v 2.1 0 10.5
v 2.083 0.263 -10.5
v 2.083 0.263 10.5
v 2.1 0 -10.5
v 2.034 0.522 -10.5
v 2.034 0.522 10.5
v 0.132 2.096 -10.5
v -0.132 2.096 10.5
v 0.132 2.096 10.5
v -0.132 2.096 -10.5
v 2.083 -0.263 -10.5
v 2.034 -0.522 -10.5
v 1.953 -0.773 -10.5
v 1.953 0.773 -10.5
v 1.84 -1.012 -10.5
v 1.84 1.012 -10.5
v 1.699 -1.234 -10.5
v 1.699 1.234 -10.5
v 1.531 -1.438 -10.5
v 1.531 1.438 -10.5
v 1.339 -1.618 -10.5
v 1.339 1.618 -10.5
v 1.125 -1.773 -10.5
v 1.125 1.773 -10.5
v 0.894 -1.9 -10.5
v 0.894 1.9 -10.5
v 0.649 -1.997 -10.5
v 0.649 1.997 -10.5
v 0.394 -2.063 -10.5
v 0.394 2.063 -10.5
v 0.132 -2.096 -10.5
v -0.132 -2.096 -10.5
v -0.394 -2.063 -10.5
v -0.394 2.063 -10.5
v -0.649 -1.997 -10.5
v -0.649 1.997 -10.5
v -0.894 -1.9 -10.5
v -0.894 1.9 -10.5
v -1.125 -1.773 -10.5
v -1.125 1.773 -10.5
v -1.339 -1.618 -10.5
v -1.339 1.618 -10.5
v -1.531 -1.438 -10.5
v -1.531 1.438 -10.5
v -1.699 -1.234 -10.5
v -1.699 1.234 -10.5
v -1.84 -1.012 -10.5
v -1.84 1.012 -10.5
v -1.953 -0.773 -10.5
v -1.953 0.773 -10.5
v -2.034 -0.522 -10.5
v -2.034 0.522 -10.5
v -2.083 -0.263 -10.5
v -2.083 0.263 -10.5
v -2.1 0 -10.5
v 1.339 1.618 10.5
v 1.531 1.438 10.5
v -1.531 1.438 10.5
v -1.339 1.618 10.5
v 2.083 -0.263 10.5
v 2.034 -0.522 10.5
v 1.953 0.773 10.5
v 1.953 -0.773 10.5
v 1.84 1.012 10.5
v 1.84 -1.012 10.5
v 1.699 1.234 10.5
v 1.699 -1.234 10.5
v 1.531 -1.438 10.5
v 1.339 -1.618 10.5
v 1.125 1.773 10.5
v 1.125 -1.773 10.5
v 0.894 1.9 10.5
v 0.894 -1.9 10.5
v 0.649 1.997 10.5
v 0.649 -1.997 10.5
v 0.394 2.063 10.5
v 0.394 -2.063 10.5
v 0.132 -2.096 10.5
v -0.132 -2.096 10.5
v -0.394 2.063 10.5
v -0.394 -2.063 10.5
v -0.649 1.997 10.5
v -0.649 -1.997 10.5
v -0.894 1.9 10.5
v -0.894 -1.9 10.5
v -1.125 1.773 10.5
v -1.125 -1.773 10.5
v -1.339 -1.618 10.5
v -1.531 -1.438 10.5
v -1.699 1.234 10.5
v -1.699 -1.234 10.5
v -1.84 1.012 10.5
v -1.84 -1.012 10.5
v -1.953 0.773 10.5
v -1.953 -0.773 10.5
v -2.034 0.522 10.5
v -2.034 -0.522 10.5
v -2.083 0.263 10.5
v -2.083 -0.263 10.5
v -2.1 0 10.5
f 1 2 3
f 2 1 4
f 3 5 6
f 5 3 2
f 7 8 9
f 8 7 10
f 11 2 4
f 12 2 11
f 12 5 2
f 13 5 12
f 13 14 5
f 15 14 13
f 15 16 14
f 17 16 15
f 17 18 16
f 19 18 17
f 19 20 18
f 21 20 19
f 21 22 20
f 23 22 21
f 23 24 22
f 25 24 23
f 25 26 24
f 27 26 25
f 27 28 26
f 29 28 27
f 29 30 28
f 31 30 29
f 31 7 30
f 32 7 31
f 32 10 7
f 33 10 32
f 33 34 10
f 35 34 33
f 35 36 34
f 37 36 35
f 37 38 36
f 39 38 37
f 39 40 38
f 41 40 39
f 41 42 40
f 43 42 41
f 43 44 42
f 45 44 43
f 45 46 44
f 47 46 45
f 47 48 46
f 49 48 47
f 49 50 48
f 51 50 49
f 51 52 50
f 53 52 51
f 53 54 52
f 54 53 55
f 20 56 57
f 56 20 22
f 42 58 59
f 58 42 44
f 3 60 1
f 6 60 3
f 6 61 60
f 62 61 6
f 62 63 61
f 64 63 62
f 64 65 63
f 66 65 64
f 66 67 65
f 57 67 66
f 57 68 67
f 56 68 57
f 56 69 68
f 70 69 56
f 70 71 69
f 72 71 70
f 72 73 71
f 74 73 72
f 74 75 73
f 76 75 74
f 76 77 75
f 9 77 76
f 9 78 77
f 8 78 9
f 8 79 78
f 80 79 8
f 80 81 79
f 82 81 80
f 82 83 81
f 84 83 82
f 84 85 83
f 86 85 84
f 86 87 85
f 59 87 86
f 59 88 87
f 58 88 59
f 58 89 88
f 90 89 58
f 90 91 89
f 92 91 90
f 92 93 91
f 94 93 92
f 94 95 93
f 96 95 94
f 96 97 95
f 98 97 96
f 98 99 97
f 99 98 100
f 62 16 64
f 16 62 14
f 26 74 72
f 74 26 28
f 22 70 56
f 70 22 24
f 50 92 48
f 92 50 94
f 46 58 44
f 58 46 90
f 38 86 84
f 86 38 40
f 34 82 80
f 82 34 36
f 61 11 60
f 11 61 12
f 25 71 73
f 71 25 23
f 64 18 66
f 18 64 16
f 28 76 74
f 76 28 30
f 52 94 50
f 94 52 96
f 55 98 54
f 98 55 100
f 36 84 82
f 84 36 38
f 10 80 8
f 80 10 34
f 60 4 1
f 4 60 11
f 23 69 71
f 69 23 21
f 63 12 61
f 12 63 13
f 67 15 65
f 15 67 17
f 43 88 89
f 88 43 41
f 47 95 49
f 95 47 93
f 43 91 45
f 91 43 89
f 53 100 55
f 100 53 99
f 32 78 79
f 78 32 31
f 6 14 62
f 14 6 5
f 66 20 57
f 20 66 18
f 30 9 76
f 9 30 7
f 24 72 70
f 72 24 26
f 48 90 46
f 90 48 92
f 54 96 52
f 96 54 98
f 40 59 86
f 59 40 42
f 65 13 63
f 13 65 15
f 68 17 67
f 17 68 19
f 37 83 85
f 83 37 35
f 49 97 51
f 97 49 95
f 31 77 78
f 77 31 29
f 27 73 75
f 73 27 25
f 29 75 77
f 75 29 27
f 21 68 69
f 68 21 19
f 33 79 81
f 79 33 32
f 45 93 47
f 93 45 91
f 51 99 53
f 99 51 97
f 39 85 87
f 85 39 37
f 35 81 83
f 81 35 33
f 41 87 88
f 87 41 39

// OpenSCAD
$fn = 50;


difference() {
	union() {
		translate(v = [0, 0, -10.5000000000]) {
			cylinder(h = 21, r = 2.1000000000);
		}
	}
	union() {
		translate(v = [0, 0, -100.0000000000]) {
			cylinder(h = 200, r = 0);
		}
	}
}
